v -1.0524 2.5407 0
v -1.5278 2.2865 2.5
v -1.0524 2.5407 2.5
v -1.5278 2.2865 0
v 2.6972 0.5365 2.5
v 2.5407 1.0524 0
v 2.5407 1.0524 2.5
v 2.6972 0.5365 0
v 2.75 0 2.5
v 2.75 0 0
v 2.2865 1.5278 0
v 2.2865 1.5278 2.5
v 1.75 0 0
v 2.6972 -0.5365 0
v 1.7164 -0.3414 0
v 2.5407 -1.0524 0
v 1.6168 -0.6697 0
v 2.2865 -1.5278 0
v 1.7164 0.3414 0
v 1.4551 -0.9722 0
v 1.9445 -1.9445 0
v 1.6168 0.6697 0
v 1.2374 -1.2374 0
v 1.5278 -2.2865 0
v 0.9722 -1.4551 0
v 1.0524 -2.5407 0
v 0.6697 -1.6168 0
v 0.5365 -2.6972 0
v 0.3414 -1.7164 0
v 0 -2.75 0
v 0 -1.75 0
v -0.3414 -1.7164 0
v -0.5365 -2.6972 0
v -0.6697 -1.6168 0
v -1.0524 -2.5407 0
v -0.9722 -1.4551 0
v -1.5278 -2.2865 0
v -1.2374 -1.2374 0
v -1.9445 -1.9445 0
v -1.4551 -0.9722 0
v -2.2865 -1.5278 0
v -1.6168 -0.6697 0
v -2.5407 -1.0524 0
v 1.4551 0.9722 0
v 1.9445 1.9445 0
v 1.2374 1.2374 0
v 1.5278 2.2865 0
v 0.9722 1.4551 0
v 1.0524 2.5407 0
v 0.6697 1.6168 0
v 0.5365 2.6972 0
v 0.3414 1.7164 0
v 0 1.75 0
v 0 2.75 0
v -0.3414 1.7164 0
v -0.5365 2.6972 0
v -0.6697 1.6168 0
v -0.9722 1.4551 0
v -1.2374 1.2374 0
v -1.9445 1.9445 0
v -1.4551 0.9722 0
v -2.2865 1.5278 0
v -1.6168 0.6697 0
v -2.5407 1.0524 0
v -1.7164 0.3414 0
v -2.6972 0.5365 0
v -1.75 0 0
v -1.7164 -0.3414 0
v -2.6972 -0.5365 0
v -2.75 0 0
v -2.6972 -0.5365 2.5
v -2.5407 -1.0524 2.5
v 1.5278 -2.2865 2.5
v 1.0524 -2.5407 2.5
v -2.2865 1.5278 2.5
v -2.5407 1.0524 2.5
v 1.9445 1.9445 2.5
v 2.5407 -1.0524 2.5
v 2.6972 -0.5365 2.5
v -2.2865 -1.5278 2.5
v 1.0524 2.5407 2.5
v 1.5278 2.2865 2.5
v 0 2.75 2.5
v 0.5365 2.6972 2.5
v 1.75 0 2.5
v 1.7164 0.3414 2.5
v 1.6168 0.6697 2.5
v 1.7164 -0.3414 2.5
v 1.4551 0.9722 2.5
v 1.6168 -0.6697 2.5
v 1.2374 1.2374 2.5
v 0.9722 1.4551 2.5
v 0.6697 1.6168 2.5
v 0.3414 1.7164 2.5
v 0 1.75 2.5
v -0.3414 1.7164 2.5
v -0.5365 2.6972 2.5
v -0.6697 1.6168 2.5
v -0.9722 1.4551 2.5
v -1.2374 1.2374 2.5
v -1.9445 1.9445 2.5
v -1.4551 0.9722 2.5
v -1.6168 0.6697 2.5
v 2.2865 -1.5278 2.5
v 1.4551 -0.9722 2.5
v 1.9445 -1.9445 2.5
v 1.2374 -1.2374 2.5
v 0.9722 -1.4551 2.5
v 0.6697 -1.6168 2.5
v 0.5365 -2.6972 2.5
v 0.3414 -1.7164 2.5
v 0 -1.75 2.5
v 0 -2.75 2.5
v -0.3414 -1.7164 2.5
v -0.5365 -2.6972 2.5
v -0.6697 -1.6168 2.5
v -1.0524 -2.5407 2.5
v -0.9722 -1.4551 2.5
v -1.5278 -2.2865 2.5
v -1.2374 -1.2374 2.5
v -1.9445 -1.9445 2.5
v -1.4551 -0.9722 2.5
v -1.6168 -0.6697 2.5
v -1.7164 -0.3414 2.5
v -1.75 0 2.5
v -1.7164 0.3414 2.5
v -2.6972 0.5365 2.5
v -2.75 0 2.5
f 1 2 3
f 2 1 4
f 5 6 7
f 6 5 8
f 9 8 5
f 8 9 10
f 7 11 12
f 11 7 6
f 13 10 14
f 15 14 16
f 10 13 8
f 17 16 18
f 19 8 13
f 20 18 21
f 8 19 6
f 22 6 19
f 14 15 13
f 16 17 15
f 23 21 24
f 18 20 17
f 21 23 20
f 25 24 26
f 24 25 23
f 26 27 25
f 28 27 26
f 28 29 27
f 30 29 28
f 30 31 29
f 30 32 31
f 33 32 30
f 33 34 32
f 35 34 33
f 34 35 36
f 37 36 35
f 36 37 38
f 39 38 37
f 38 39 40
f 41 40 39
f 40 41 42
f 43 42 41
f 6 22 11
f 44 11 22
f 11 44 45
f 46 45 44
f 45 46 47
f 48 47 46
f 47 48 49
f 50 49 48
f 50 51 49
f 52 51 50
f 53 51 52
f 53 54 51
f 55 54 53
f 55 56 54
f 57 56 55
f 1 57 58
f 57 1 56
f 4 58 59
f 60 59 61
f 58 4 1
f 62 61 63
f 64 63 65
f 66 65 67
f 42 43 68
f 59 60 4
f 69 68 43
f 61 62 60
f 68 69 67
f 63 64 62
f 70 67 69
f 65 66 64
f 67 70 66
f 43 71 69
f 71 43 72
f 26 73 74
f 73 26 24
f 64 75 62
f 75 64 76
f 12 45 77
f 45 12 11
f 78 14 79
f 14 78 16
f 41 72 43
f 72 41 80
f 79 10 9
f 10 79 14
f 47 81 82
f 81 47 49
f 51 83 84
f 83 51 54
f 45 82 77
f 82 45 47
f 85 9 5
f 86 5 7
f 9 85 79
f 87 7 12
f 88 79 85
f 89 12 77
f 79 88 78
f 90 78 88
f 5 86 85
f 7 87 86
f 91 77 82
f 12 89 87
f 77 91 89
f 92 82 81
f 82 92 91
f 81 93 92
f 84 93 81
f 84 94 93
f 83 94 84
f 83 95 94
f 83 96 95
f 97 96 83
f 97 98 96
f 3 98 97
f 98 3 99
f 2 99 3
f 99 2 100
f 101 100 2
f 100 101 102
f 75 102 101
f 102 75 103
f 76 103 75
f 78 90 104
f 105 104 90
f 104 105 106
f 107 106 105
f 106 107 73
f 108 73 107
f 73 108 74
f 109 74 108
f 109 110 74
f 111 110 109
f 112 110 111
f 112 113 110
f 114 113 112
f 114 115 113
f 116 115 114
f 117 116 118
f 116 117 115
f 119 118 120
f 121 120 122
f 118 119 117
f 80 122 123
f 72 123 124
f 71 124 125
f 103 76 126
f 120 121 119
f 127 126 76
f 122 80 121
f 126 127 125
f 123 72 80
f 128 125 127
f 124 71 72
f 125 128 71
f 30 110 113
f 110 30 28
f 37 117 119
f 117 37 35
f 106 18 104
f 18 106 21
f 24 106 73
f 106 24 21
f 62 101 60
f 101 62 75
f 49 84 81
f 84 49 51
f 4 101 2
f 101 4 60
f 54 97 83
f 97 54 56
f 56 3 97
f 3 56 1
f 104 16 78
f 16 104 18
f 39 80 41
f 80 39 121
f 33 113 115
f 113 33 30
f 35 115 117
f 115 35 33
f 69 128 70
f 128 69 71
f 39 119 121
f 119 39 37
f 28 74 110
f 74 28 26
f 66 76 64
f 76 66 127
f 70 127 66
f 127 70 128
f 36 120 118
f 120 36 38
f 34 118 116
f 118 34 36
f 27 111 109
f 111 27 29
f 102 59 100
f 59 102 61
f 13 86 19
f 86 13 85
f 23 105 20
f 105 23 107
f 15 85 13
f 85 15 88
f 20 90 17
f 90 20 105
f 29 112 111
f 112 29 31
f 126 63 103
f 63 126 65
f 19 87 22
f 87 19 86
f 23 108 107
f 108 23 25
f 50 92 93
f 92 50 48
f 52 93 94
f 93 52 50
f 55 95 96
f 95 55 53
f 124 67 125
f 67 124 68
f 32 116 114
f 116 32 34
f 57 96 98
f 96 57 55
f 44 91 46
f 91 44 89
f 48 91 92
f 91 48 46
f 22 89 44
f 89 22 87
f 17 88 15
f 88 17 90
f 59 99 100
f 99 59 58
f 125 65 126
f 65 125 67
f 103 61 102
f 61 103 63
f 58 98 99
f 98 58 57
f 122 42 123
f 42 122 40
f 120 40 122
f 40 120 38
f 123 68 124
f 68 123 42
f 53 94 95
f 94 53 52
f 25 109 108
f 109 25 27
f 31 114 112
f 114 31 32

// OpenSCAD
module Distance(inD = 3.5, outD=5.5, h=2.5)
{
    difference()
    {
        cylinder(h = h, d = outD, $fn=32);
        translate([0,0,-0.01])
        cylinder(h = h*2, d = inD, $fn=32);
        
    }
}
Distance();
